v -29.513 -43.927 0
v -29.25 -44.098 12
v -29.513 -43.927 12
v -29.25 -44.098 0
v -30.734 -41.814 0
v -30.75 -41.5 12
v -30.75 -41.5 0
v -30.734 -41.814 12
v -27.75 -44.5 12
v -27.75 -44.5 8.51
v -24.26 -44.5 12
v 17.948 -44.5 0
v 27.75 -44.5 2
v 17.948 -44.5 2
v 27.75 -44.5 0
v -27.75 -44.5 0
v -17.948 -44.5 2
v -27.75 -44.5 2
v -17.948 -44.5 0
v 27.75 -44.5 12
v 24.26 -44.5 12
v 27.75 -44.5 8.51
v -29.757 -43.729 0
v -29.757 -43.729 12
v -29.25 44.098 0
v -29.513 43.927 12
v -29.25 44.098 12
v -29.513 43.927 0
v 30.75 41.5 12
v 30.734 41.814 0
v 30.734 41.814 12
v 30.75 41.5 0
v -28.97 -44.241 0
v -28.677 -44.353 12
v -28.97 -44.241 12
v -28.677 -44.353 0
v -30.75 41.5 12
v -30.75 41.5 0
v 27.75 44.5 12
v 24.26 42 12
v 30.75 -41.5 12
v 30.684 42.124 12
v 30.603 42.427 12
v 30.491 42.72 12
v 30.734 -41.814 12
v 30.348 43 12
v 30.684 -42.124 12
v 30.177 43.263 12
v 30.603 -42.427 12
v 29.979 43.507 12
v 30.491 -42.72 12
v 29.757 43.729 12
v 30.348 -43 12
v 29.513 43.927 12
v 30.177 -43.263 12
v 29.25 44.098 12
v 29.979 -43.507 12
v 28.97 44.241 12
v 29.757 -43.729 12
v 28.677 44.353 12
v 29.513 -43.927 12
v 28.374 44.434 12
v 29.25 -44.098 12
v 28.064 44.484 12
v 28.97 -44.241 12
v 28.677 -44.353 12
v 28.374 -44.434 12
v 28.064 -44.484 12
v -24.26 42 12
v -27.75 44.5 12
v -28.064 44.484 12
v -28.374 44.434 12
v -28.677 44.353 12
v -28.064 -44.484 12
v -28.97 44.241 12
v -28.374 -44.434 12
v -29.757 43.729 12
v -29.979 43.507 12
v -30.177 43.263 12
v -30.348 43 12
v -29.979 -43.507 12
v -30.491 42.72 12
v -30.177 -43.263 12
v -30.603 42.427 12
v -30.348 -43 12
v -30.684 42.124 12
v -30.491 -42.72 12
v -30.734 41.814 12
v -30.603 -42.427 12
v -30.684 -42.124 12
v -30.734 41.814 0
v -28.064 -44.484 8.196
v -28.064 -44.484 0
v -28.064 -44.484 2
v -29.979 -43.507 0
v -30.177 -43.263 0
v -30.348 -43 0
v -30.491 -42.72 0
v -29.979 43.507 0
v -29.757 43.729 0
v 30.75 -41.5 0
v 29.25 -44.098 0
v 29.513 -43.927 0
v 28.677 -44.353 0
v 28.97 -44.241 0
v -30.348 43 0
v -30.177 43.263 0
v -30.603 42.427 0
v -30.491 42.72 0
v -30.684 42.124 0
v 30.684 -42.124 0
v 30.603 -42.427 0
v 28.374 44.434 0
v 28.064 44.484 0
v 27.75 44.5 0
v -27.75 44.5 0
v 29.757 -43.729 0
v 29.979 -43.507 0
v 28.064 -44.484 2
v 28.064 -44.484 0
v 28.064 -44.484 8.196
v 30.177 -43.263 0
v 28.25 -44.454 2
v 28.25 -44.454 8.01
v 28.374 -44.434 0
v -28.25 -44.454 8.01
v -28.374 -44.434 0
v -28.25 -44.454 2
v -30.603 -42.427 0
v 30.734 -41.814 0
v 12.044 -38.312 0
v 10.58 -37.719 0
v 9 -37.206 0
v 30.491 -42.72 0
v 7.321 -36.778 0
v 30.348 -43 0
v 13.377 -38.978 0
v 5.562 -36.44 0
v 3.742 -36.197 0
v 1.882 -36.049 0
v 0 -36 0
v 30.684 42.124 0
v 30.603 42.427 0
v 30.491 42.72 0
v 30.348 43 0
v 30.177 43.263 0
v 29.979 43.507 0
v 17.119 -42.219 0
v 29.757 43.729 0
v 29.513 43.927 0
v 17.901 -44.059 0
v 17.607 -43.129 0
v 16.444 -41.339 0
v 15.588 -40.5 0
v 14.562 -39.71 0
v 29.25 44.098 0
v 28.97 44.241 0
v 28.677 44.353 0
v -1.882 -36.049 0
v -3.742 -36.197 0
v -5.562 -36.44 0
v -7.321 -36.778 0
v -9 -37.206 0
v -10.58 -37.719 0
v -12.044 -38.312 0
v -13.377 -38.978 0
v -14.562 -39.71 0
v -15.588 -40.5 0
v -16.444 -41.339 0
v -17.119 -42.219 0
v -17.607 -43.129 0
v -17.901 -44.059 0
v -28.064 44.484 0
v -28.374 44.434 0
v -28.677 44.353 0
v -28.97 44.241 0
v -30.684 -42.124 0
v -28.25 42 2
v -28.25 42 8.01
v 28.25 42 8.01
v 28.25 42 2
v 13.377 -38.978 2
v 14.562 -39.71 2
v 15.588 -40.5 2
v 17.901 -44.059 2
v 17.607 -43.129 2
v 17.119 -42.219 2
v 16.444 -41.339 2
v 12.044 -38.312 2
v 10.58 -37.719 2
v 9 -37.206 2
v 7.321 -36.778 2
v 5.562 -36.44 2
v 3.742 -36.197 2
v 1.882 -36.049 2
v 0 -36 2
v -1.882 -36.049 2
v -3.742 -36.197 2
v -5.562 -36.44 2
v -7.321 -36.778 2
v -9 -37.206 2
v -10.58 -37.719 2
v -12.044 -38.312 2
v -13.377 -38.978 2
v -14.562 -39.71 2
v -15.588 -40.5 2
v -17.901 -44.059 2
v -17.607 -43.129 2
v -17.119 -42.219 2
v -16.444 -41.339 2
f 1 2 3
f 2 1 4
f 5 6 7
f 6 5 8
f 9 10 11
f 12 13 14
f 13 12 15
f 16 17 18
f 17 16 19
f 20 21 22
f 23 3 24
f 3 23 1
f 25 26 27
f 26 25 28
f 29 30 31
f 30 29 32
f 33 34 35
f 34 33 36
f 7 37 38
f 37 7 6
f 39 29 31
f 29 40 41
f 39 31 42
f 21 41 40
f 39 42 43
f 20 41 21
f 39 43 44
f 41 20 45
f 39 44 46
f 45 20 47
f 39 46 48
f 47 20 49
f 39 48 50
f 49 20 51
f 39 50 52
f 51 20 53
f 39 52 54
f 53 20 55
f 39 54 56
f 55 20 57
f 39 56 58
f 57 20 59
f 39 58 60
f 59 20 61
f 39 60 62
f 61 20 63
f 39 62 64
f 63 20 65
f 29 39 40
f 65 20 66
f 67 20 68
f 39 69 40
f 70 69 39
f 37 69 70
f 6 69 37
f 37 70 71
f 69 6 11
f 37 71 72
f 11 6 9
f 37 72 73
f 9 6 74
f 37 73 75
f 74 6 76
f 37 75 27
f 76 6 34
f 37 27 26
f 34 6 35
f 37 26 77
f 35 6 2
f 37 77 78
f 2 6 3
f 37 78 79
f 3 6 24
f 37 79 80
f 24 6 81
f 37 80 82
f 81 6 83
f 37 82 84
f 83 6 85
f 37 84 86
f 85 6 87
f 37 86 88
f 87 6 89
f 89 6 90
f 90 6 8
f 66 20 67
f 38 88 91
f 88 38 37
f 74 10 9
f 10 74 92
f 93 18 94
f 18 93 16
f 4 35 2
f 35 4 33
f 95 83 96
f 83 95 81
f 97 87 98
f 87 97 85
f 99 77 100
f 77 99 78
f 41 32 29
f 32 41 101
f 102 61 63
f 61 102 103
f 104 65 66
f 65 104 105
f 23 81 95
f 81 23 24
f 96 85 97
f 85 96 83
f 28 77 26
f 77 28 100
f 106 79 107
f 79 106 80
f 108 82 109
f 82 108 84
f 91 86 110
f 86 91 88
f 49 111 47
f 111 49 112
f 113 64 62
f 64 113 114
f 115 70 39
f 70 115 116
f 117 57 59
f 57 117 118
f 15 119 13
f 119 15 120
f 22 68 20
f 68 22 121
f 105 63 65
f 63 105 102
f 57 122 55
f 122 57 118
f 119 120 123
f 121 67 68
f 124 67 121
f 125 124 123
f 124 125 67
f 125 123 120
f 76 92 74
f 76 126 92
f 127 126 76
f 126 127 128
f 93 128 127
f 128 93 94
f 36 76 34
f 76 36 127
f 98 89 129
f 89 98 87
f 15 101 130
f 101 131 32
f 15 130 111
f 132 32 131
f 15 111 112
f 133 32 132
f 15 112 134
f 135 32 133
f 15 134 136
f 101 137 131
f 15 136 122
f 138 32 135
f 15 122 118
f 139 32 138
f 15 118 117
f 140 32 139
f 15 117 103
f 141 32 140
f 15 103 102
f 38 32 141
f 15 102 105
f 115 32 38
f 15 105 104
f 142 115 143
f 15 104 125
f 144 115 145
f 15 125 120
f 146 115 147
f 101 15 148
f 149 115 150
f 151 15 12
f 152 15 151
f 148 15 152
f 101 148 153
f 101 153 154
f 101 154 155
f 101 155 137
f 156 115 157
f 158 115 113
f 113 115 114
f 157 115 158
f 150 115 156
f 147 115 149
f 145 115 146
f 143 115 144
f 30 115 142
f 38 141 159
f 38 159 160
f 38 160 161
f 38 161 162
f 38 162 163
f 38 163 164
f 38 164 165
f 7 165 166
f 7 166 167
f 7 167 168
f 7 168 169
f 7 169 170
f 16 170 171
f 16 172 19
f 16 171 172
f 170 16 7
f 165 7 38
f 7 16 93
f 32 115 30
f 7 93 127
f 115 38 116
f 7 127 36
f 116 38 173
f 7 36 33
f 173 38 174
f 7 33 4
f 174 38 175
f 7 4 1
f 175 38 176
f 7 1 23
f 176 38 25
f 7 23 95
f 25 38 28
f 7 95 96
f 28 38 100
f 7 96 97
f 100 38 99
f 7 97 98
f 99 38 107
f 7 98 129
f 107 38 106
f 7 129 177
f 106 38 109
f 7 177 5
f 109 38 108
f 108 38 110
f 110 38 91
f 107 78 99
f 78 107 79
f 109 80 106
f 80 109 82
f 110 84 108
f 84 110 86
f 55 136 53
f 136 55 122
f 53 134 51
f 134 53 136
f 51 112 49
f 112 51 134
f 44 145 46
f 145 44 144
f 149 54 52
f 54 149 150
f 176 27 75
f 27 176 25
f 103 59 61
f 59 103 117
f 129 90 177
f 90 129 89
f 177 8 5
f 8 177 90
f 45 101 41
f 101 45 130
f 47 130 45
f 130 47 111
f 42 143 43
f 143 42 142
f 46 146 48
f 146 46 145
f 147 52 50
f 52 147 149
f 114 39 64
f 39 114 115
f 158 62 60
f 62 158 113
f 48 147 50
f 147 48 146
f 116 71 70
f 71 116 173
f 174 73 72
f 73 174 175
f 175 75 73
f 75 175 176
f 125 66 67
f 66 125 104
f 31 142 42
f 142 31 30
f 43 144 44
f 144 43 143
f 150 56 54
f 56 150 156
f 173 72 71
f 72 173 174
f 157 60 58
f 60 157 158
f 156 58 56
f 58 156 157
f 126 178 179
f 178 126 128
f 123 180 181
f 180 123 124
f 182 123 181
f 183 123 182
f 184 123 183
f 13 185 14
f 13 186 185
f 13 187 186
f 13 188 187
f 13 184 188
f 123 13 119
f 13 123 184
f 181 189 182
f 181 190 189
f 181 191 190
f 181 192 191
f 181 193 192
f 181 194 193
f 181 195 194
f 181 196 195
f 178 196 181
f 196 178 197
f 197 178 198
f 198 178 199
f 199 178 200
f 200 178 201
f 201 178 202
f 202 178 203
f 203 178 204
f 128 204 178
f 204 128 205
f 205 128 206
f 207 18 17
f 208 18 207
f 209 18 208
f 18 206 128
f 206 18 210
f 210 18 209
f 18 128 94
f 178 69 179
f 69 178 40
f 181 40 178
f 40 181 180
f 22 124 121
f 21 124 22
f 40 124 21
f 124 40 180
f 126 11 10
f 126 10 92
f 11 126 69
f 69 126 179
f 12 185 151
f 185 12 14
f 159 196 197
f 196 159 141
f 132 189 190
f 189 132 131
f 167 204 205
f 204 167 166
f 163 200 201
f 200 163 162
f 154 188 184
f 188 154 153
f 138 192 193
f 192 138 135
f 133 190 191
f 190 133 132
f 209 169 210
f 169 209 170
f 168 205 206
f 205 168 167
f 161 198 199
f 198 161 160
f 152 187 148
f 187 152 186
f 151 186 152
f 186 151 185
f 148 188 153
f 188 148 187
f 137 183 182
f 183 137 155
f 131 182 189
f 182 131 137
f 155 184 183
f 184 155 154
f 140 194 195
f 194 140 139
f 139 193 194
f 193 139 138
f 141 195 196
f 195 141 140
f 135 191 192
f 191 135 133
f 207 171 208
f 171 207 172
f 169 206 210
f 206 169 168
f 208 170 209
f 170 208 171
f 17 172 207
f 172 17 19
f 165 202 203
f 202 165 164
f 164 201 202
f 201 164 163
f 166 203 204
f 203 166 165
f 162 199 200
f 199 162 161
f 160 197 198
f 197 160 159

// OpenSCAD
//
// Parameters
//

// Card dimensions
card_width            = 55;
card_length           = 85;
card_stack_height     = 6;

// Manufacturing tolerances
clearance             = 1.5;

// Case geometry
wall_thickness        = 2.5;
bottom_thickness      = 2.0;
outer_corner_radius   = 3.0;

// Retention lip
retention_lip_size    = 4.0;

// Thumb cutout
thumb_cutout_radius   = 18;
thumb_cutout_y_offset = -0.5;
thumb_cutout_scale_y  = 0.5;

// Rendering
render_resolution     = 60;
$fn = render_resolution;


//
// Derived dimensions
//
inner_width  = card_width + clearance;
inner_length = card_length + clearance;

// Open-front design:
// rear wall only, front side remains open
outer_width  = inner_width + 2 * wall_thickness;
outer_length = inner_length + wall_thickness;

outer_height =
    bottom_thickness +
    card_stack_height +
    retention_lip_size;


//
// Rounded block
//
module rounded_block(
    width,
    length,
    height,
    corner_radius
) {

    hull() {

        for (x = [0, 1])
        for (y = [0, 1]) {

            translate([
                x * (width  - 2 * corner_radius) + corner_radius,
                y * (length - 2 * corner_radius) + corner_radius,
                0
            ])

            cylinder(
                h = height,
                r = corner_radius
            );
        }
    }
}


//
// Main card holder
//
module card_holder() {

    difference() {

        //
        // Outer body
        //
        rounded_block(
            outer_width,
            outer_length,
            outer_height,
            outer_corner_radius
        );

        //
        // Card compartment
        //
        translate([
            wall_thickness,
            -1,
            bottom_thickness
        ])

        cube([
            inner_width,
            inner_length + 1,
            card_stack_height
        ]);

        //
        // 45° support-free roof transition
        //
        translate([
            wall_thickness,
            -1,
            bottom_thickness + card_stack_height
        ])

        hull() {

            cube([
                inner_width,
                inner_length + 1,
                0.01
            ]);

            translate([
                retention_lip_size,
                0,
                retention_lip_size
            ])

            cube([
                inner_width - 2 * retention_lip_size,
                inner_length + 1,
                0.01
            ]);
        }

        //
        // Thumb access cutout
        //
        translate([
            outer_width / 2,
            thumb_cutout_y_offset,
            bottom_thickness + card_stack_height / 2
        ])

        scale([
            1,
            thumb_cutout_scale_y,
            1
        ])

        cylinder(
            h      = outer_height + 5,
            r      = thumb_cutout_radius,
            center = true
        );
    }
}


//
// Final assembly
//
translate([
    -outer_width / 2,
    -outer_length / 2,
    0
]) {

    card_holder();
}
